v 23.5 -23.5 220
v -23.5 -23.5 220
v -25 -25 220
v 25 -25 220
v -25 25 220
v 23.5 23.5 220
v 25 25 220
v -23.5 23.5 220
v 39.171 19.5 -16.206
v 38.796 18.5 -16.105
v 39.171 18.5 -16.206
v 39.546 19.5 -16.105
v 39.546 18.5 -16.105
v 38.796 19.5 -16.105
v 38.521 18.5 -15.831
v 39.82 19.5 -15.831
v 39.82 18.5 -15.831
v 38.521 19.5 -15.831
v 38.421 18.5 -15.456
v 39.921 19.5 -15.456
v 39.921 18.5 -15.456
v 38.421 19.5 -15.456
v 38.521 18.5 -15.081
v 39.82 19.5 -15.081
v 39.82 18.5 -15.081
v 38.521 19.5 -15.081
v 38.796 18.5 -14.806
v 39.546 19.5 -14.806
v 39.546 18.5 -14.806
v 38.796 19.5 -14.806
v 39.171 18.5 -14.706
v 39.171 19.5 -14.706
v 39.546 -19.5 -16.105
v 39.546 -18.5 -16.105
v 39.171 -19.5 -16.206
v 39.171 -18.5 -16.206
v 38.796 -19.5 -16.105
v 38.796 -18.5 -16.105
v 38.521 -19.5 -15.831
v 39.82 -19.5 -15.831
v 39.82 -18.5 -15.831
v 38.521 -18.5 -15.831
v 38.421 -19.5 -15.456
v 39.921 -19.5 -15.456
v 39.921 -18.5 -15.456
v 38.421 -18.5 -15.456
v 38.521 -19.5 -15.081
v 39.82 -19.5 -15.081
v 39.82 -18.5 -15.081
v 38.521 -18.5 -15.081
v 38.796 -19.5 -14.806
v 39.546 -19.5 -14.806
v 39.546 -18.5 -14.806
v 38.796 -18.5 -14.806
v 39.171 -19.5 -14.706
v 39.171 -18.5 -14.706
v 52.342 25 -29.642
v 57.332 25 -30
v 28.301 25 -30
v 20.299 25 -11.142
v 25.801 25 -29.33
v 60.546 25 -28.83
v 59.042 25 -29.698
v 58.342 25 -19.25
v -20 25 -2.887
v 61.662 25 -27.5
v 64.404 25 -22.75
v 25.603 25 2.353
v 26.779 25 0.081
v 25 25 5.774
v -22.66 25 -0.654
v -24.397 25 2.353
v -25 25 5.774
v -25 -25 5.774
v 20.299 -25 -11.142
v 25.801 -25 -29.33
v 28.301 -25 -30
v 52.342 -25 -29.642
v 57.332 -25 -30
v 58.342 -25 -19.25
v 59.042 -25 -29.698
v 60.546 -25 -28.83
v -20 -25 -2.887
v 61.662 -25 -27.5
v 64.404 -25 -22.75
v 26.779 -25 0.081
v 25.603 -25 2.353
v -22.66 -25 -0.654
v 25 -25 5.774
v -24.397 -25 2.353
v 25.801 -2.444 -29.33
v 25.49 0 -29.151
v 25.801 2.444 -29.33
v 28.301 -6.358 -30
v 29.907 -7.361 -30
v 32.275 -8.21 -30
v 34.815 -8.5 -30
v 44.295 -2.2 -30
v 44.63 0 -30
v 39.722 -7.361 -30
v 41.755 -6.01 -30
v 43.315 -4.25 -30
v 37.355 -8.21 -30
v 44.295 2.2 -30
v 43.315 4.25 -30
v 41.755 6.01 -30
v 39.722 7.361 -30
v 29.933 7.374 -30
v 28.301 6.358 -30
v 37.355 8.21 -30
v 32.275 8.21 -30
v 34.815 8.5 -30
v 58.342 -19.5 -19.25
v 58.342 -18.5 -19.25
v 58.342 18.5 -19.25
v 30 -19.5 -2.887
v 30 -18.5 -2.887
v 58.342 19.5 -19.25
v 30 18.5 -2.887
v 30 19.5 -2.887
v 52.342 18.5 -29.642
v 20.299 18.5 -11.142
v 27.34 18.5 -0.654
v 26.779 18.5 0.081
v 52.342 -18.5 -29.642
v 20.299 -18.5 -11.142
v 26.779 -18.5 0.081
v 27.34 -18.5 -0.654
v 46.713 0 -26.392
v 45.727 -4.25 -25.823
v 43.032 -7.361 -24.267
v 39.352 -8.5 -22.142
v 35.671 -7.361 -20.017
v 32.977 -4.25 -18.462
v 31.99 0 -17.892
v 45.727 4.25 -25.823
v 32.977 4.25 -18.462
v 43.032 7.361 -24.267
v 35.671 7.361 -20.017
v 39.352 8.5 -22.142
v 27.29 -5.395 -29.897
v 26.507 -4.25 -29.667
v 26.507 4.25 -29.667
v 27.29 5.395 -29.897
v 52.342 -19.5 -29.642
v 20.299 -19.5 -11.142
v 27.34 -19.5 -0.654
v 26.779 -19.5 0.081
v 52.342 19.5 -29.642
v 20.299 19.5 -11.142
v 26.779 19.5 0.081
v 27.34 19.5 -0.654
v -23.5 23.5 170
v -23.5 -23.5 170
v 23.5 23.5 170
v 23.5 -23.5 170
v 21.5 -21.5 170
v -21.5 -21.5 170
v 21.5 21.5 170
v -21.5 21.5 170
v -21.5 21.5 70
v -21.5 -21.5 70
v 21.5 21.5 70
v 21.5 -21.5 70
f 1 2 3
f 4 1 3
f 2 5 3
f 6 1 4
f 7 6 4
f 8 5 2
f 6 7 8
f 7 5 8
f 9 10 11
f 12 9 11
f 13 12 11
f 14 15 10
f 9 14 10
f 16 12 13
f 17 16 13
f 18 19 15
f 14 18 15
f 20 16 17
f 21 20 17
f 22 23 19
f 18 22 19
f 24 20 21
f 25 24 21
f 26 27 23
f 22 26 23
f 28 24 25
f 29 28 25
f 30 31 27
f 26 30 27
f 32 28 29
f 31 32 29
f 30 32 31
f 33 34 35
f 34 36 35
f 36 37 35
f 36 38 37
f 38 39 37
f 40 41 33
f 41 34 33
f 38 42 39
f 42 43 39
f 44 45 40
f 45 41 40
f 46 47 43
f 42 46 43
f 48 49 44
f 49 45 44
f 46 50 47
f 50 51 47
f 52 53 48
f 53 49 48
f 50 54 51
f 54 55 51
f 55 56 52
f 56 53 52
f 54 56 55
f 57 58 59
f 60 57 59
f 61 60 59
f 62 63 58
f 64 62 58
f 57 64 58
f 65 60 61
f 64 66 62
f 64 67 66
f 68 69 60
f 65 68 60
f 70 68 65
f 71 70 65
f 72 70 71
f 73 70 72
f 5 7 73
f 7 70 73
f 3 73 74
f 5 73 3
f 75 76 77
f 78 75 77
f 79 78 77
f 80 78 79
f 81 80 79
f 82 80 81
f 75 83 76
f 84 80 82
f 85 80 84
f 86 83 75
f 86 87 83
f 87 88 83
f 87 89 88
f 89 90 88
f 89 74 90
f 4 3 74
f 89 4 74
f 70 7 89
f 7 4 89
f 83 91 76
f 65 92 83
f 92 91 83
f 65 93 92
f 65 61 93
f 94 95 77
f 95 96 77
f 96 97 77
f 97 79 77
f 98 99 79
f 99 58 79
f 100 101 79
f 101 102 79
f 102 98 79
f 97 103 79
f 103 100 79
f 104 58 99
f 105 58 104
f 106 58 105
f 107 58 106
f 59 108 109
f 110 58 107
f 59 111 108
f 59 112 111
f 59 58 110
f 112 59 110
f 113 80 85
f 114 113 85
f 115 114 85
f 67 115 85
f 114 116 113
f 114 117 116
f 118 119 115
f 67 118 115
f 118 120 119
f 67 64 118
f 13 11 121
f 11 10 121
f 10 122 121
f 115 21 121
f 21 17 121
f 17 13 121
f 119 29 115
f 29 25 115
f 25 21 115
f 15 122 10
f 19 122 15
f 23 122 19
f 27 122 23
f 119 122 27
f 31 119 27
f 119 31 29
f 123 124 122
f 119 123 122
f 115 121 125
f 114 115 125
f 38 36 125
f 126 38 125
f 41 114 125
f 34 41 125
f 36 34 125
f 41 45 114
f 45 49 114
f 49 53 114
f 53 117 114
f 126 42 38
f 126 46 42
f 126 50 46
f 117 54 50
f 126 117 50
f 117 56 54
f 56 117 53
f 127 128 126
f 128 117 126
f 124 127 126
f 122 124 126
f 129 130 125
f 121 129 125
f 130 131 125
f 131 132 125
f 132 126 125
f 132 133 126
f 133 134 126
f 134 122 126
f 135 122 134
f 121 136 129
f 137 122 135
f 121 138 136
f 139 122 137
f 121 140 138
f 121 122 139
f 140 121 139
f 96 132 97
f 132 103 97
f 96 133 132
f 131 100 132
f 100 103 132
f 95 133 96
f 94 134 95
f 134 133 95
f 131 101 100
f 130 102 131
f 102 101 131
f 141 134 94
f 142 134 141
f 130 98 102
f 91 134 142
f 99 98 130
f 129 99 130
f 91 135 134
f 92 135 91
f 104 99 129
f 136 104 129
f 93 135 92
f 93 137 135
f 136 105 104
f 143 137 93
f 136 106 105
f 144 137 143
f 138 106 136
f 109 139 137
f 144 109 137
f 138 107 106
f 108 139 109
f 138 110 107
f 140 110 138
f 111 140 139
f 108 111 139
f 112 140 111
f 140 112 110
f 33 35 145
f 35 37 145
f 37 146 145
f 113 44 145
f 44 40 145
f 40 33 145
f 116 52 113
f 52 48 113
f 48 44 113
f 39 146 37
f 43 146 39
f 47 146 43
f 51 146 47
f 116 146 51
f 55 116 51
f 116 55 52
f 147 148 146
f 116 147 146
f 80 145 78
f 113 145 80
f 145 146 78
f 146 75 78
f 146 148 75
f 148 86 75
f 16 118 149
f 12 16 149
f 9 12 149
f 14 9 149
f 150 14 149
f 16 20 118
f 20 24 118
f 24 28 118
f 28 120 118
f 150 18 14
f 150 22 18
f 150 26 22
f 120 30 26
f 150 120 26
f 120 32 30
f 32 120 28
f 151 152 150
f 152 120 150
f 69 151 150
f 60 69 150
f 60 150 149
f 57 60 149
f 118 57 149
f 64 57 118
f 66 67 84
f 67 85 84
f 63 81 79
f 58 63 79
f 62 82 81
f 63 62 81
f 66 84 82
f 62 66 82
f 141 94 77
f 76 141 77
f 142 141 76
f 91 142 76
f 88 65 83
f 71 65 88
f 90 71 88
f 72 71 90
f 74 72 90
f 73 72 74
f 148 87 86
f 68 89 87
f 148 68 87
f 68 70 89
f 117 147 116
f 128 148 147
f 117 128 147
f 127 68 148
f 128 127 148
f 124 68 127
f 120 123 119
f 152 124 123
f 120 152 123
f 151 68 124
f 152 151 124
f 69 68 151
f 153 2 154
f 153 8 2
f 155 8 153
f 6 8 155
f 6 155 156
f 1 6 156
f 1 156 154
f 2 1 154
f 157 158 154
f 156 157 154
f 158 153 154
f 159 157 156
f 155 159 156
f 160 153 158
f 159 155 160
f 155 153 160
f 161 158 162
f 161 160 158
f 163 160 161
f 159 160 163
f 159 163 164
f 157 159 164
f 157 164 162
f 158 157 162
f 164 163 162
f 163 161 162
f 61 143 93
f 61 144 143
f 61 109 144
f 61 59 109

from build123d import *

# Parameters (mm, degrees)
SKETCH_1_W           = 50
SKETCH_1_H           = 50
EXTRUDE_1_DEPTH      = 220
EXTRUDE_2_DEPTH      = 50
SKETCH_4_W           = 37
SKETCH_4_H           = 37
CUT_EXTRUDE_2_DEPTH  = 12
CUT_EXTRUDE_3_REACH  = 235.922
SKETCH_5_R           = 8.5
SKETCH_8_R           = 0.75
CUT_EXTRUDE_4_DEPTH  = 6.5
CUT_EXTRUDE_START    = -6.5
SKETCH_7_R           = 0.75
CUT_EXTRUDE_5_DEPTH  = 6.5
CUT_EXTRUDE_6_DEPTH  = 5.5
CUT_EXTRUDE_7_DEPTH  = 5.5
CUT_EXTRUDE_8_DEPTH  = 50
FILLET_1_R           = 5
FILLET_2_R           = 5
FILLET_3_R           = 10
FILLET_4_R           = 10
SKETCH_13_W          = 47
SKETCH_13_H          = 47
CUT_EXTRUDE_9_DEPTH  = 50
SKETCH_2_W           = 43
SKETCH_2_H           = 43
CUT_EXTRUDE_10_DEPTH = 150
FILLET_5_R           = 5


with BuildPart() as part:
    # 草图1 → 凸台-拉伸1 (new body)
    with BuildSketch(Plane.XY):
        Rectangle(SKETCH_1_W, SKETCH_1_H)
    extrude(amount=EXTRUDE_1_DEPTH)

    # 草图3 → 凸台-拉伸2 (add)
    with BuildSketch(Plane(origin=(0, 25, 0), x_dir=(1, 0, 0), z_dir=(0, 1, 0))):
        Polygon((25, 0), (-25, 0), (26.961524227, 30), (76.961524227, 30), align=None)
    extrude(amount=-EXTRUDE_2_DEPTH)

    # 草图4 → 切除-拉伸2 (cut)
    with BuildSketch(Plane(origin=(6.25, 0, 10.825317547), x_dir=(0.8660254037844415, 0, -0.4999999999999951), z_dir=(0.4999999999999951, 0, 0.8660254037844415))):
        with Locations((41.650635095, 0)):
            Rectangle(SKETCH_4_W, SKETCH_4_H)
    extrude(amount=-CUT_EXTRUDE_2_DEPTH, mode=Mode.SUBTRACT)

    # 切除-拉伸3: up to this face of the body (flat: up to its plane)
    cut_extrude_3_end = Plane(part.part.faces().sort_by_distance((0.980762114, 0, -15))[0])
    # 草图5 → 切除-拉伸3 (cut, up to the picked face)
    with BuildSketch(Plane(origin=(0.25, 0, 0.433012702), x_dir=(0.8660254037844415, 0, -0.4999999999999951), z_dir=(0.4999999999999951, 0, 0.8660254037844415)), mode=Mode.PRIVATE) as cut_extrude_3_sk1:
        with Locations((45.150635095, 0)):
            Circle(SKETCH_5_R)
    cut_extrude_3_tool1 = split(extrude(cut_extrude_3_sk1.sketch, amount=-CUT_EXTRUDE_3_REACH, mode=Mode.PRIVATE), bisect_by=cut_extrude_3_end, keep=Keep.BOTH, mode=Mode.PRIVATE)
    add(cut_extrude_3_tool1.solids().sort_by(Axis((39.351597, 0, -22.142305), (-0.4999999999999951, 0, -0.8660254037844415)))[0], mode=Mode.SUBTRACT)

    # 草图8 → 切除-拉伸4 (cut)
    with BuildSketch(Plane.XZ.offset(-18.5)):
        with Locations((39.170508076, -15.455960044)):
            Circle(SKETCH_8_R)
    extrude(amount=-CUT_EXTRUDE_4_DEPTH, mode=Mode.SUBTRACT)

    # 草图7 → 切除-拉伸5 (cut)
    with BuildSketch(Plane(origin=(0, -18.5, 0), x_dir=(1, 0, 0), z_dir=(0, 1, 0)).offset(CUT_EXTRUDE_START)):
        with Locations((39.170508076, 15.455960044)):
            Circle(SKETCH_7_R)
    extrude(amount=CUT_EXTRUDE_5_DEPTH, mode=Mode.SUBTRACT)

    # 草图10 → 切除-拉伸6 (cut)
    with BuildSketch(Plane.XZ.offset(25)):
        Polygon((58.341978046, -19.25), (26.299038106, -0.75), (20.299038106, -11.142304845), (52.341978046, -29.642304845), align=None)
    extrude(amount=-CUT_EXTRUDE_6_DEPTH, mode=Mode.SUBTRACT)

    # 草图11 → 切除-拉伸7 (cut)
    with BuildSketch(Plane(origin=(0, 25, 0), x_dir=(1, 0, 0), z_dir=(0, 1, 0))):
        Polygon((26.299038106, 0.75), (58.341978046, 19.25), (52.341978046, 29.642304845), (20.299038106, 11.142304845), align=None)
    extrude(amount=-CUT_EXTRUDE_7_DEPTH, mode=Mode.SUBTRACT)

    # 草图12 → 切除-拉伸8 (cut)
    with BuildSketch(Plane.XZ.offset(25)):
        Polygon((64.404155872, -22.75), (60.218366421, -30), (76.961524227, -30), align=None)
    extrude(amount=-CUT_EXTRUDE_8_DEPTH, mode=Mode.SUBTRACT)

    # 圆角1
    fillet_1_edges = [part.edges().sort_by_distance(p)[0] for p in [
        (60.218366421, 0, -30),
    ]]
    fillet(fillet_1_edges, radius=FILLET_1_R)

    # 圆角2
    fillet_2_edges = [part.edges().sort_by_distance(p)[0] for p in [
        (26.961524227, -15.049152987, -30),
    ]]
    fillet(fillet_2_edges, radius=FILLET_2_R)

    # 圆角3
    fillet_3_edges = [part.edges().sort_by_distance(p)[0] for p in [
        (-25, 0, 0),
    ]]
    fillet(fillet_3_edges, radius=FILLET_3_R)

    # 圆角4
    # the kernel refuses this fillet: 10 mm, written as the material it adds along each edge
    with BuildSketch(Plane(origin=(25, 25, 0), x_dir=(0, 0, 1), z_dir=(0, -1, 0))) as fillet_4_piece_1_section:
        with BuildLine():
            CenterArc((FILLET_4_R * 0.57735026919, -FILLET_4_R), FILLET_4_R, 90, 60)
            Line((-FILLET_4_R * 0.288675134595, -FILLET_4_R * 0.5), (0, 0))
            Line((0, 0), (FILLET_4_R * 0.57735026919, 0))
        make_face()
    fillet_4_piece_1 = extrude(amount=50, mode=Mode.PRIVATE)
    fillet_4_piece_1 = split(fillet_4_piece_1, bisect_by=Plane(origin=(26.950281618, 22.25, 0.377986851), z_dir=(-0.8660254037844415, 0, 0.49999999999999517)), keep=Keep.TOP, mode=Mode.PRIVATE)
    add(fillet_4_piece_1)
    with BuildSketch(Plane(origin=(25, 39.43375673, 0), x_dir=(0, 0, 1), z_dir=(0, -1, 0))) as fillet_4_piece_2_section:
        with BuildLine():
            CenterArc((FILLET_4_R * 0.57735026919, -FILLET_4_R), FILLET_4_R, 90, 60)
            Line((-FILLET_4_R * 0.288675134595, -FILLET_4_R * 0.5), (0, 0))
            Line((0, 0), (FILLET_4_R * 0.57735026919, 0))
        make_face()
    fillet_4_piece_2 = extrude(amount=78.867513459, mode=Mode.PRIVATE)
    fillet_4_piece_2 = split(fillet_4_piece_2, bisect_by=Plane(origin=(27.357776316, 19.5, -1.0319296), z_dir=(0, -1, 0)), keep=Keep.TOP, mode=Mode.PRIVATE)
    fillet_4_piece_2 = split(fillet_4_piece_2, bisect_by=Plane(origin=(27.357776316, 18.5, -1.0319296), z_dir=(0, 1, 0)), keep=Keep.TOP, mode=Mode.PRIVATE)
    add(fillet_4_piece_2)
    with BuildSketch(Plane(origin=(25, 39.43375673, 0), x_dir=(0, 0, 1), z_dir=(0, -1, 0))) as fillet_4_piece_3_section:
        with BuildLine():
            CenterArc((FILLET_4_R * 0.57735026919, -FILLET_4_R), FILLET_4_R, 90, 60)
            Line((-FILLET_4_R * 0.288675134595, -FILLET_4_R * 0.5), (0, 0))
            Line((0, 0), (FILLET_4_R * 0.57735026919, 0))
        make_face()
    fillet_4_piece_3 = extrude(amount=78.867513459, mode=Mode.PRIVATE)
    fillet_4_piece_3 = split(fillet_4_piece_3, bisect_by=Plane(origin=(27.357776316, -19.5, -1.0319296), z_dir=(0, 1, 0)), keep=Keep.TOP, mode=Mode.PRIVATE)
    fillet_4_piece_3 = split(fillet_4_piece_3, bisect_by=Plane(origin=(27.357776316, -18.5, -1.0319296), z_dir=(0, -1, 0)), keep=Keep.TOP, mode=Mode.PRIVATE)
    add(fillet_4_piece_3)

    # 草图13 → 切除-拉伸9 (cut)
    with BuildSketch(Plane.XY.offset(220)):
        Rectangle(SKETCH_13_W, SKETCH_13_H)
    extrude(amount=-CUT_EXTRUDE_9_DEPTH, mode=Mode.SUBTRACT)

    # 草图2 → 切除-拉伸10 (cut)
    with BuildSketch(Plane.XY.offset(220)):
        Rectangle(SKETCH_2_W, SKETCH_2_H)
    extrude(amount=-CUT_EXTRUDE_10_DEPTH, mode=Mode.SUBTRACT)

    # 圆角5
    fillet_5_edges = [part.edges().sort_by_distance(p)[0] for p in [
        (26.961524227, 15.049152987, -30),
    ]]
    fillet(fillet_5_edges, radius=FILLET_5_R)


solid = part.part
